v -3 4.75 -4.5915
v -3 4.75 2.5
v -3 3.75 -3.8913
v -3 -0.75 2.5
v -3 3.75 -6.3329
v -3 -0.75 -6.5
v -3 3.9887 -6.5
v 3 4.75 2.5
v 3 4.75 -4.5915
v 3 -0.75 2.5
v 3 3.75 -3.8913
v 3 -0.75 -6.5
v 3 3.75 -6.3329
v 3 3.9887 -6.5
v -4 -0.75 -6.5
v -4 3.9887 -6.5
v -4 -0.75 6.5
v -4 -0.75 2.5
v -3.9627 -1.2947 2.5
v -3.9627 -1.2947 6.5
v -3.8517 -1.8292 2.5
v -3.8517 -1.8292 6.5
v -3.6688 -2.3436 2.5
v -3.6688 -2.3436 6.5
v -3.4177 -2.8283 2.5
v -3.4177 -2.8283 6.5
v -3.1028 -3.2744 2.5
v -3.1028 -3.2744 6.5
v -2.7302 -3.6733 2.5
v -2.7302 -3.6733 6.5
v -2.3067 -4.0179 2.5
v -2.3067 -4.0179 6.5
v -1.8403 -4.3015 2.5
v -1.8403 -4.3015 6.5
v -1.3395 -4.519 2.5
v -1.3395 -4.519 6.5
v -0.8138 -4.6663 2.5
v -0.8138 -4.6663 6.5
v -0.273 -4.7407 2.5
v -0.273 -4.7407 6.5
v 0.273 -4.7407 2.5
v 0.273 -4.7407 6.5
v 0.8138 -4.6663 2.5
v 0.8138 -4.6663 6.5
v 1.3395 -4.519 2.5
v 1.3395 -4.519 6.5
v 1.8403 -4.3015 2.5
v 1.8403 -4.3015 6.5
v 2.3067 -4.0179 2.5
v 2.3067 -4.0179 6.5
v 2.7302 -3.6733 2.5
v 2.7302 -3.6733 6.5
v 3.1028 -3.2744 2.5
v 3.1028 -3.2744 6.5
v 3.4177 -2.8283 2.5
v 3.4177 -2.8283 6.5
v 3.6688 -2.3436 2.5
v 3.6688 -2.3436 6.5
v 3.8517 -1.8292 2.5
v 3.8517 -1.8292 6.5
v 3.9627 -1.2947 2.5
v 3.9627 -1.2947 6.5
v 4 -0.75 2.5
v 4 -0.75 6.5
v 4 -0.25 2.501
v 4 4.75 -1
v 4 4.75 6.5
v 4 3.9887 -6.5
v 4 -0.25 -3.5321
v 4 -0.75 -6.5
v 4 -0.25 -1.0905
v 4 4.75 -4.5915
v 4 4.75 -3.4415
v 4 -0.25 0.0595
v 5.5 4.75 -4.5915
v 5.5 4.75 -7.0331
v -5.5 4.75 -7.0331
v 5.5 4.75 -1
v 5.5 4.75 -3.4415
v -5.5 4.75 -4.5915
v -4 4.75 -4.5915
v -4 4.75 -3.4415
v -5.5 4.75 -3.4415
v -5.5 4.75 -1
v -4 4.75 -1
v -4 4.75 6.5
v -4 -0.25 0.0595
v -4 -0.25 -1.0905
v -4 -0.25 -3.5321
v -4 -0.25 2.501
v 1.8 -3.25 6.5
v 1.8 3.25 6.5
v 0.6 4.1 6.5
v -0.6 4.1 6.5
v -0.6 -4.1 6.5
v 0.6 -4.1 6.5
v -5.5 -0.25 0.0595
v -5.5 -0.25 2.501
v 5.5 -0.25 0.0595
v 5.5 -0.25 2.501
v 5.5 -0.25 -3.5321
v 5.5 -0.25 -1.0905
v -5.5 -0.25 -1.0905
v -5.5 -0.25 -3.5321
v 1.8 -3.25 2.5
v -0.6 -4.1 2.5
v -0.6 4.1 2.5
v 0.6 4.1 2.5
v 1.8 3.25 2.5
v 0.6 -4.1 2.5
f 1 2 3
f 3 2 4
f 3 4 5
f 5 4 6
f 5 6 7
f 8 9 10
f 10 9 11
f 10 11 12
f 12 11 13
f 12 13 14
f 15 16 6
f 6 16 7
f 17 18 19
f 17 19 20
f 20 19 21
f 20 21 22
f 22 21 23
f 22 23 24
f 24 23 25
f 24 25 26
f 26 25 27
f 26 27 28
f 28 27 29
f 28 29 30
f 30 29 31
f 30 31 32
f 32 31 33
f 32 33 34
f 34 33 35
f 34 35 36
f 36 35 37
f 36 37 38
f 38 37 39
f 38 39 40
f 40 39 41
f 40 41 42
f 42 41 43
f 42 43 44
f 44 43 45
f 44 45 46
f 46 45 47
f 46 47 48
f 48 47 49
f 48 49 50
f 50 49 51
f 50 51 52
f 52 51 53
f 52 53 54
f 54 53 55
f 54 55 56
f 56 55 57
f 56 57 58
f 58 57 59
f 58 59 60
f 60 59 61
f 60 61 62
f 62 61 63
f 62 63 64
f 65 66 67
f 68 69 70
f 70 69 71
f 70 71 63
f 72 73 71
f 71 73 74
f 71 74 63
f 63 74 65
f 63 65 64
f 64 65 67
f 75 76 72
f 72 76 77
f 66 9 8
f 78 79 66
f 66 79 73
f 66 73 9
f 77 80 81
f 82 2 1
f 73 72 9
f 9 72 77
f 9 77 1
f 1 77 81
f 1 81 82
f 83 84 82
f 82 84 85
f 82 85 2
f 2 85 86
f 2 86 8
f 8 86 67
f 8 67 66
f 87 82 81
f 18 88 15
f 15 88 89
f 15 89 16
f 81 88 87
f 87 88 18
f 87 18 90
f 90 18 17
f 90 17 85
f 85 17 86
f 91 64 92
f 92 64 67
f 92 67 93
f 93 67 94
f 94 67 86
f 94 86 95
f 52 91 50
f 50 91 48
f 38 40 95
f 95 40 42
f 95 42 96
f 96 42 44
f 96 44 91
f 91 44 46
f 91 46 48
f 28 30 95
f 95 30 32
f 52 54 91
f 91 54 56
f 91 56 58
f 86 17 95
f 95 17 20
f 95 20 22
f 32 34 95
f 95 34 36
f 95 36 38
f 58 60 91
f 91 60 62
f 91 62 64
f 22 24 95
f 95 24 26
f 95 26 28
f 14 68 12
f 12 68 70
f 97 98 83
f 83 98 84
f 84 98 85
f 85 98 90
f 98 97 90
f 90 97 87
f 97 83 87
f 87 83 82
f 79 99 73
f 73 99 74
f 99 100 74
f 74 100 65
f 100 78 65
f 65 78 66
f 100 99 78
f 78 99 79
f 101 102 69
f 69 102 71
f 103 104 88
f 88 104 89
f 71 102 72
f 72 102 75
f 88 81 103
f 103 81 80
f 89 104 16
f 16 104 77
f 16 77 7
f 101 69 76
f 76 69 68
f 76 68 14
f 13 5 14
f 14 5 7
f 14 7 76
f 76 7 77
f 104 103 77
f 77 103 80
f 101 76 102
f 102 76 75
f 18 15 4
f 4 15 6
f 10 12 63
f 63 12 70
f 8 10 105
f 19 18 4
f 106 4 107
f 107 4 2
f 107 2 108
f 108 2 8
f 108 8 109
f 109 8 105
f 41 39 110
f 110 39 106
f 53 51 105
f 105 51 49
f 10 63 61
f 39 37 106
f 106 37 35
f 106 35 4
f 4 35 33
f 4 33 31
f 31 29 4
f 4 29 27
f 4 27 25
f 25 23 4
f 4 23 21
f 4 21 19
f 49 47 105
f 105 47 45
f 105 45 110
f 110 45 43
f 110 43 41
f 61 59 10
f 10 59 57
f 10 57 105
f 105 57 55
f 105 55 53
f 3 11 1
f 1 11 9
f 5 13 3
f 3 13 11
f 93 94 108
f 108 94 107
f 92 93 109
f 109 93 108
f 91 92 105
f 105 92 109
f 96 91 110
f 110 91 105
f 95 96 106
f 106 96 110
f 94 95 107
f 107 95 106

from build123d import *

# Parameters (mm, degrees)
BOSS_EXTRUDE1_DEPTH             = 6.5
BOSS_EXTRUDE2_DEPTH             = 5.5
BOSS_EXTRUDE2_DEPTH_BACK        = 5.5
CUT_EXTRUDE1_START              = -4
CUT_EXTRUDE1_DEPTH              = 25
BOSS_EXTRUDE3_REACH             = 7.5
BOSS_EXTRUDE3_DIRECTION_2_REACH = 7.5
CUT_EXTRUDE2_DEPTH              = 4


with BuildPart() as part:
    # Sketch1 → Boss-Extrude1 (new body, symmetric)
    with BuildSketch(Plane.XY):
        with BuildLine():
            Line((-4, -0.75), (-4, 4.75))
            Line((-4, 4.75), (4, 4.75))
            Line((4, 4.75), (4, -0.75))
            ThreePointArc((4, -0.75), (0, -4.75), (-4, -0.75))
        make_face()
    extrude(amount=BOSS_EXTRUDE1_DEPTH, both=True)

    # Sketch2 → Boss-Extrude2 (add, two sides)
    with BuildSketch(Plane(origin=(0, 0, 0), x_dir=(0, 0, -1), z_dir=(1, 0, 0))) as boss_extrude2_sk:
        Polygon((-2.501037691, -0.25), (-0.059488514, -0.25), (2.39940586, 3.261665098), (3.441549178, 4.75), (1, 4.75), align=None)
        Polygon((4.591549178, 4.75), (4.021496439, 3.935880318), (3.690341929, 3.462942665), (1.090511486, -0.25), (3.532060664, -0.25), (7.033098355, 4.75), align=None)
    extrude(amount=BOSS_EXTRUDE2_DEPTH)
    extrude(boss_extrude2_sk.sketch, amount=-BOSS_EXTRUDE2_DEPTH_BACK)

    # Sketch3 → Cut-Extrude1 (cut)
    with BuildSketch(Plane.XY.offset(6.5).offset(CUT_EXTRUDE1_START)):
        with BuildLine():
            Line((4, -0.75), (3, -0.75))
            Line((3, -0.75), (3, 4.75))
            Line((3, 4.75), (-3, 4.75))
            Line((-3, 4.75), (-3, -0.75))
            Line((-3, -0.75), (-4, -0.75))
            ThreePointArc((-4, -0.75), (0, -4.75), (4, -0.75))
        make_face()
    extrude(amount=-CUT_EXTRUDE1_DEPTH, mode=Mode.SUBTRACT)

    # Boss-Extrude3: up to this face of the body (flat: up to its plane)
    boss_extrude3_end = Plane(part.part.faces().sort_by_distance((5.5, 2.25, -4.061804921))[0])
    # Sketch4 → Boss-Extrude3 (add, up to the picked face)
    with BuildSketch(Plane(origin=(0, 0, 0), x_dir=(0, 0, -1), z_dir=(1, 0, 0)), mode=Mode.PRIVATE) as boss_extrude3_sk1:
        Polygon((7.033098355, 4.75), (4.591549178, 4.75), (3.891341639, 3.75), (6.332890817, 3.75), align=None)
    boss_extrude3_tool1 = split(extrude(boss_extrude3_sk1.sketch, amount=BOSS_EXTRUDE3_REACH, mode=Mode.PRIVATE), bisect_by=boss_extrude3_end, keep=Keep.BOTH, mode=Mode.PRIVATE)
    add(boss_extrude3_tool1.solids().sort_by_distance((0, 4.25, -5.46222))[0])

    # Boss-Extrude3 direction 2: up to this face of the body (flat: up to its plane)
    boss_extrude3_direction_2_end = Plane(part.part.faces().sort_by_distance((-5.5, 2.25, -4.061804921))[0])
    # Sketch4 → Boss-Extrude3 direction 2 (add, up to the picked face)
    with BuildSketch(Plane(origin=(0, 0, 0), x_dir=(0, 0, -1), z_dir=(1, 0, 0)), mode=Mode.PRIVATE) as boss_extrude3_direction_2_sk1:
        Polygon((7.033098355, 4.75), (4.591549178, 4.75), (3.891341639, 3.75), (6.332890817, 3.75), align=None)
    boss_extrude3_direction_2_tool1 = split(extrude(boss_extrude3_direction_2_sk1.sketch, amount=-BOSS_EXTRUDE3_DIRECTION_2_REACH, mode=Mode.PRIVATE), bisect_by=boss_extrude3_direction_2_end, keep=Keep.BOTH, mode=Mode.PRIVATE)
    add(boss_extrude3_direction_2_tool1.solids().sort_by_distance((0, 4.25, -5.46222))[0])

    # Sketch5 → Cut-Extrude2 (cut)
    with BuildSketch(Plane.XY.offset(6.5)):
        Polygon((-0.6, 4.1), (-0.6, -4.1), (0.6, -4.1), (1.8, -3.25), (1.8, 3.25), (0.6, 4.1), align=None)
    extrude(amount=-CUT_EXTRUDE2_DEPTH, mode=Mode.SUBTRACT)


solid = part.part
